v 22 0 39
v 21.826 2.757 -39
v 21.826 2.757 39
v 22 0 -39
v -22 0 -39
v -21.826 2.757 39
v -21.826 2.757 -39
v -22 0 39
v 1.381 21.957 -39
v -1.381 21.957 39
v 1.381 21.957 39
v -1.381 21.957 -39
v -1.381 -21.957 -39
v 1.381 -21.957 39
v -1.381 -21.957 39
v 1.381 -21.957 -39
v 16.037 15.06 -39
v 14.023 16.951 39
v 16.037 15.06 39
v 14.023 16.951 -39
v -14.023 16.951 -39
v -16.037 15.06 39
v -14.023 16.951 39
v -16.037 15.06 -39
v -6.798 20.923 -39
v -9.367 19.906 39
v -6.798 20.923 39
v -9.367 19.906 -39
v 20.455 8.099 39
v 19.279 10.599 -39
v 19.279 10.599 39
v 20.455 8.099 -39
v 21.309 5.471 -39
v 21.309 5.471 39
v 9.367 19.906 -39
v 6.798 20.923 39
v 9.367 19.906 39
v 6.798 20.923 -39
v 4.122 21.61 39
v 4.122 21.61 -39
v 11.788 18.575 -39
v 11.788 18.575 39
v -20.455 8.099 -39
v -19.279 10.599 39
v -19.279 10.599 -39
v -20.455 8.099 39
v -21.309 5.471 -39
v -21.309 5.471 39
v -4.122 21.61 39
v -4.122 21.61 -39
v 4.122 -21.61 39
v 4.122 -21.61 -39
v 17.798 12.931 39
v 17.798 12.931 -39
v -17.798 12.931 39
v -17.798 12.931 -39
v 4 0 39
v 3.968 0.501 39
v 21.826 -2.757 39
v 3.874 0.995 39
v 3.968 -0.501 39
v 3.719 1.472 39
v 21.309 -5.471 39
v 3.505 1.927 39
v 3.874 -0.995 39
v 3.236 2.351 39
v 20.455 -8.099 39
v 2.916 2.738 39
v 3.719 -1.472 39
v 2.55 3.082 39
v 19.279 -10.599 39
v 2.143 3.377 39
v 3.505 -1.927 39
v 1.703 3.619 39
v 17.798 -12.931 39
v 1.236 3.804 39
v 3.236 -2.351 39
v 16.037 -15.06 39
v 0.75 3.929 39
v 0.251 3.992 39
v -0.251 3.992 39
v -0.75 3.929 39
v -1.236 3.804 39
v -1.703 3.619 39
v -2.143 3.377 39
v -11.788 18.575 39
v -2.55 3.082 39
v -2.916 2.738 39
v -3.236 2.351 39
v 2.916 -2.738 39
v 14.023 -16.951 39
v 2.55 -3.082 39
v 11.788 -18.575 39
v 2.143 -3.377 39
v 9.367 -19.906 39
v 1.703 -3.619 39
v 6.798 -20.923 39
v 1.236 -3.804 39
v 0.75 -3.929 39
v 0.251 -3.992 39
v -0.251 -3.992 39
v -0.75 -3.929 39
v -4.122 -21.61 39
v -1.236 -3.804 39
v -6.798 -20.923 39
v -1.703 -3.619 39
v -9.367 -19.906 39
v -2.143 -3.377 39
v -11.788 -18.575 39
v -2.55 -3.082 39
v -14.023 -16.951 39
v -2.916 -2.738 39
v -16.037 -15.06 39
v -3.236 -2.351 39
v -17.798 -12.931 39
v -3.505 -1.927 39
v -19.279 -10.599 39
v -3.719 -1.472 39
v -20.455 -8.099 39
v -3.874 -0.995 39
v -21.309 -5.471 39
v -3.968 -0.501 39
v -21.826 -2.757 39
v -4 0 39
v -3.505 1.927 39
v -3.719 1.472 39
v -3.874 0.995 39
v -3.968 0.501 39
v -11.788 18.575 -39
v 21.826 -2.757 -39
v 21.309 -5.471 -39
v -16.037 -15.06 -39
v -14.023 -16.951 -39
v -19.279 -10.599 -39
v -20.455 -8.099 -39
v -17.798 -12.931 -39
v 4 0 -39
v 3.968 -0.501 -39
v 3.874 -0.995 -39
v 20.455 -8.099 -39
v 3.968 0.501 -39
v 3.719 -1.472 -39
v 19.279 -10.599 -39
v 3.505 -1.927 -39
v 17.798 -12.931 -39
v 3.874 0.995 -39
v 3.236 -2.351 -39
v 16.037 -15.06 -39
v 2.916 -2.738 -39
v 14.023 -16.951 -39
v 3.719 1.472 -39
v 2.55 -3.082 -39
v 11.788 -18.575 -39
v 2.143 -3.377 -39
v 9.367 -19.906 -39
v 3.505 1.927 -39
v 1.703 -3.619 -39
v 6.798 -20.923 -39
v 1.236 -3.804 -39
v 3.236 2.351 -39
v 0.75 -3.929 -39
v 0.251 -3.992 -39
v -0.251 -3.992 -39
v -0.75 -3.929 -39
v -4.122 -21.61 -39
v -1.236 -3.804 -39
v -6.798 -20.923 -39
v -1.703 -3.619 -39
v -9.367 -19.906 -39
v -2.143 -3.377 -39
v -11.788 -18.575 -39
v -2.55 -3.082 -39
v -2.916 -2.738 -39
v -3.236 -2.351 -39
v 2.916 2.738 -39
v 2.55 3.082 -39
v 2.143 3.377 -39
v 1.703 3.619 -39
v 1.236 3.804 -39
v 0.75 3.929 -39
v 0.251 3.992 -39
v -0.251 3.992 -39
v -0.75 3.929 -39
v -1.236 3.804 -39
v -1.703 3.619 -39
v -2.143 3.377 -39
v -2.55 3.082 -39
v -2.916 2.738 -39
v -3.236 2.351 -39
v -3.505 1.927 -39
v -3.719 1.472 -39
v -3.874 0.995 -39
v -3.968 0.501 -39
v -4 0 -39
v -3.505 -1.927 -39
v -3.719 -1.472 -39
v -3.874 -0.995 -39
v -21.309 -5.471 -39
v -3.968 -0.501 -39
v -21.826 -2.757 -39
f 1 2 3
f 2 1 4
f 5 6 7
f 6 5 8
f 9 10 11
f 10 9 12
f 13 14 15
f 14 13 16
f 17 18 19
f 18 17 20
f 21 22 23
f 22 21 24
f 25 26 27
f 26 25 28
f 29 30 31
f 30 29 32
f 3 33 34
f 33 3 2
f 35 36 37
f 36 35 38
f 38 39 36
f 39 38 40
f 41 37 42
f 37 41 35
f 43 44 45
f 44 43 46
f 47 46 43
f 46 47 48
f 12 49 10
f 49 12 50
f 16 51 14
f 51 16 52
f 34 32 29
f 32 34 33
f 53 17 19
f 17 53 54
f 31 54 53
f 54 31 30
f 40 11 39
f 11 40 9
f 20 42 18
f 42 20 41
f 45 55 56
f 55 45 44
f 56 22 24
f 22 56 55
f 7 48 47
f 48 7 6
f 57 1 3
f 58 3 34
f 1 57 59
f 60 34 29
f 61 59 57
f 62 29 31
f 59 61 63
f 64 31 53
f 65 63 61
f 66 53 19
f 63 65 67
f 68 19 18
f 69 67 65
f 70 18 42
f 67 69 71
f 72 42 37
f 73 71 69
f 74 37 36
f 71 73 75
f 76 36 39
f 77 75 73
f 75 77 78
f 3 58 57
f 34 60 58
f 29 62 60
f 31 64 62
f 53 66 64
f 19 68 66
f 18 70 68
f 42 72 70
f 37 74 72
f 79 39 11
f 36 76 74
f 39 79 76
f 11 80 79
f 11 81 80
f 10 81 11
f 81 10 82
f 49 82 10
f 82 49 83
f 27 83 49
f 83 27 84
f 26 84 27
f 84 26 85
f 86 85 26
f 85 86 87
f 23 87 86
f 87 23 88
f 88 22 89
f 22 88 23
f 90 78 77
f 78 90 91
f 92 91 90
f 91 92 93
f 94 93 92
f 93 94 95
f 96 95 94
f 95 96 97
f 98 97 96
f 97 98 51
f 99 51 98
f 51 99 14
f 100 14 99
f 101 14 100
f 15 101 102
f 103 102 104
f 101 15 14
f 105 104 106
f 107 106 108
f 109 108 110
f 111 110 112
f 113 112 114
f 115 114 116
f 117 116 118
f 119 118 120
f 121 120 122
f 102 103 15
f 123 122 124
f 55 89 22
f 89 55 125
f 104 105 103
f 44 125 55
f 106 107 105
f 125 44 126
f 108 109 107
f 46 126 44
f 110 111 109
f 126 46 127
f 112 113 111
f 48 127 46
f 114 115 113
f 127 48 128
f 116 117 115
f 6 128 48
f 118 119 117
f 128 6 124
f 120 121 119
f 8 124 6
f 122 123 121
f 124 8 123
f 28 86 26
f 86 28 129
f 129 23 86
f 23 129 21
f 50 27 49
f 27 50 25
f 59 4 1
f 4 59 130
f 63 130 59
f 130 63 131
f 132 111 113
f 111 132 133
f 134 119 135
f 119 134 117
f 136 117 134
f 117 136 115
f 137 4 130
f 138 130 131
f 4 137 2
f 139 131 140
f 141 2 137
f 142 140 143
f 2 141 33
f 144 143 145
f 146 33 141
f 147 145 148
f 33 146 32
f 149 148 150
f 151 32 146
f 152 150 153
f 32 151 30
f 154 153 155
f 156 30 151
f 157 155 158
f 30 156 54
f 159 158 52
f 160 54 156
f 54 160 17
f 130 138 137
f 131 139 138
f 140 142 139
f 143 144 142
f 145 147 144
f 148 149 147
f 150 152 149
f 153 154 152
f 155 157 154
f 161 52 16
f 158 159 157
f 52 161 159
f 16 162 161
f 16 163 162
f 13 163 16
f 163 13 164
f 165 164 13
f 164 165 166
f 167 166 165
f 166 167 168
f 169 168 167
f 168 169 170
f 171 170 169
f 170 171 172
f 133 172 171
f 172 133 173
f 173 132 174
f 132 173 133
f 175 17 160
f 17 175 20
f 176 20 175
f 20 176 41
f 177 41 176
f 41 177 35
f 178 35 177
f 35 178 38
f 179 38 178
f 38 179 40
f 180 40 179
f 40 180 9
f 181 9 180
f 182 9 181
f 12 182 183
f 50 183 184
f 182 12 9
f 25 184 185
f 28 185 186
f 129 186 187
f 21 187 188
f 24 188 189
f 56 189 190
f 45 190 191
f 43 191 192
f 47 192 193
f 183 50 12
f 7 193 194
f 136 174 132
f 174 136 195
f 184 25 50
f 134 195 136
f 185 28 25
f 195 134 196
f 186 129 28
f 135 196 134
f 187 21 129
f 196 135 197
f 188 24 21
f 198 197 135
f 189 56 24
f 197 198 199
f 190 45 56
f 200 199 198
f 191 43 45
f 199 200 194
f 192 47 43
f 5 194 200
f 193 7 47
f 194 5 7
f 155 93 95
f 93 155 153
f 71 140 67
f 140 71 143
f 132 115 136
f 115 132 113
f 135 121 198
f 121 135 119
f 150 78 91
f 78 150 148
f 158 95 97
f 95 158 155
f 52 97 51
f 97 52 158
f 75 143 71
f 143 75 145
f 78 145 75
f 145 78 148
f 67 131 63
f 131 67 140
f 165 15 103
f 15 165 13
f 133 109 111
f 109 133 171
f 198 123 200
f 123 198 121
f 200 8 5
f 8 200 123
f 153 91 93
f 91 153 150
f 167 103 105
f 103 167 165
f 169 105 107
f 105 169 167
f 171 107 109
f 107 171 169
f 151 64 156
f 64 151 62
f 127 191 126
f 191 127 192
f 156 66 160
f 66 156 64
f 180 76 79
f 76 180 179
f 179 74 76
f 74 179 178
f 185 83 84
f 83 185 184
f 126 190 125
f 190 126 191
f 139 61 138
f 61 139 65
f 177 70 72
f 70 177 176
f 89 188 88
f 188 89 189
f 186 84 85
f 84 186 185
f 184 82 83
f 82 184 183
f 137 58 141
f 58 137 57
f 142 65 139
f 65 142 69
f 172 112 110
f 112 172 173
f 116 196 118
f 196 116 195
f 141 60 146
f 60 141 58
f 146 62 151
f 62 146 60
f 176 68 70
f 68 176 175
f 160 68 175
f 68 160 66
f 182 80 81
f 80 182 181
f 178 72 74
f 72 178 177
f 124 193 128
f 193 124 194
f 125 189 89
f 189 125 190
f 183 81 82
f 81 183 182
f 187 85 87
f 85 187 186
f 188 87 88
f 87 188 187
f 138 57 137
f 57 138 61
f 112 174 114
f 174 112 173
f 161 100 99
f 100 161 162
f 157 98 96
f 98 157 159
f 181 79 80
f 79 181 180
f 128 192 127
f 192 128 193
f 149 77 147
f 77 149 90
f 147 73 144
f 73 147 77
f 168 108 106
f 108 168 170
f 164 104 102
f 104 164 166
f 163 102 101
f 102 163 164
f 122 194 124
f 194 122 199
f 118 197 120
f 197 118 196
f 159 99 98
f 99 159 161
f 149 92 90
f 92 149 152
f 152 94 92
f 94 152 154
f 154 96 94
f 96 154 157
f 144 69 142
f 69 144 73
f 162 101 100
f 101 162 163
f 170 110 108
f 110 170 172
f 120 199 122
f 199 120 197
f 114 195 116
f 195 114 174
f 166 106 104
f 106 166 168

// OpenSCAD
$fn = 50;


difference() {
	union() {
		translate(v = [0, 0, -39.0000000000]) {
			cylinder(h = 78, r = 22.0000000000);
		}
	}
	union() {
		translate(v = [0, 0, -100.0000000000]) {
			cylinder(h = 200, r = 4);
		}
	}
}
